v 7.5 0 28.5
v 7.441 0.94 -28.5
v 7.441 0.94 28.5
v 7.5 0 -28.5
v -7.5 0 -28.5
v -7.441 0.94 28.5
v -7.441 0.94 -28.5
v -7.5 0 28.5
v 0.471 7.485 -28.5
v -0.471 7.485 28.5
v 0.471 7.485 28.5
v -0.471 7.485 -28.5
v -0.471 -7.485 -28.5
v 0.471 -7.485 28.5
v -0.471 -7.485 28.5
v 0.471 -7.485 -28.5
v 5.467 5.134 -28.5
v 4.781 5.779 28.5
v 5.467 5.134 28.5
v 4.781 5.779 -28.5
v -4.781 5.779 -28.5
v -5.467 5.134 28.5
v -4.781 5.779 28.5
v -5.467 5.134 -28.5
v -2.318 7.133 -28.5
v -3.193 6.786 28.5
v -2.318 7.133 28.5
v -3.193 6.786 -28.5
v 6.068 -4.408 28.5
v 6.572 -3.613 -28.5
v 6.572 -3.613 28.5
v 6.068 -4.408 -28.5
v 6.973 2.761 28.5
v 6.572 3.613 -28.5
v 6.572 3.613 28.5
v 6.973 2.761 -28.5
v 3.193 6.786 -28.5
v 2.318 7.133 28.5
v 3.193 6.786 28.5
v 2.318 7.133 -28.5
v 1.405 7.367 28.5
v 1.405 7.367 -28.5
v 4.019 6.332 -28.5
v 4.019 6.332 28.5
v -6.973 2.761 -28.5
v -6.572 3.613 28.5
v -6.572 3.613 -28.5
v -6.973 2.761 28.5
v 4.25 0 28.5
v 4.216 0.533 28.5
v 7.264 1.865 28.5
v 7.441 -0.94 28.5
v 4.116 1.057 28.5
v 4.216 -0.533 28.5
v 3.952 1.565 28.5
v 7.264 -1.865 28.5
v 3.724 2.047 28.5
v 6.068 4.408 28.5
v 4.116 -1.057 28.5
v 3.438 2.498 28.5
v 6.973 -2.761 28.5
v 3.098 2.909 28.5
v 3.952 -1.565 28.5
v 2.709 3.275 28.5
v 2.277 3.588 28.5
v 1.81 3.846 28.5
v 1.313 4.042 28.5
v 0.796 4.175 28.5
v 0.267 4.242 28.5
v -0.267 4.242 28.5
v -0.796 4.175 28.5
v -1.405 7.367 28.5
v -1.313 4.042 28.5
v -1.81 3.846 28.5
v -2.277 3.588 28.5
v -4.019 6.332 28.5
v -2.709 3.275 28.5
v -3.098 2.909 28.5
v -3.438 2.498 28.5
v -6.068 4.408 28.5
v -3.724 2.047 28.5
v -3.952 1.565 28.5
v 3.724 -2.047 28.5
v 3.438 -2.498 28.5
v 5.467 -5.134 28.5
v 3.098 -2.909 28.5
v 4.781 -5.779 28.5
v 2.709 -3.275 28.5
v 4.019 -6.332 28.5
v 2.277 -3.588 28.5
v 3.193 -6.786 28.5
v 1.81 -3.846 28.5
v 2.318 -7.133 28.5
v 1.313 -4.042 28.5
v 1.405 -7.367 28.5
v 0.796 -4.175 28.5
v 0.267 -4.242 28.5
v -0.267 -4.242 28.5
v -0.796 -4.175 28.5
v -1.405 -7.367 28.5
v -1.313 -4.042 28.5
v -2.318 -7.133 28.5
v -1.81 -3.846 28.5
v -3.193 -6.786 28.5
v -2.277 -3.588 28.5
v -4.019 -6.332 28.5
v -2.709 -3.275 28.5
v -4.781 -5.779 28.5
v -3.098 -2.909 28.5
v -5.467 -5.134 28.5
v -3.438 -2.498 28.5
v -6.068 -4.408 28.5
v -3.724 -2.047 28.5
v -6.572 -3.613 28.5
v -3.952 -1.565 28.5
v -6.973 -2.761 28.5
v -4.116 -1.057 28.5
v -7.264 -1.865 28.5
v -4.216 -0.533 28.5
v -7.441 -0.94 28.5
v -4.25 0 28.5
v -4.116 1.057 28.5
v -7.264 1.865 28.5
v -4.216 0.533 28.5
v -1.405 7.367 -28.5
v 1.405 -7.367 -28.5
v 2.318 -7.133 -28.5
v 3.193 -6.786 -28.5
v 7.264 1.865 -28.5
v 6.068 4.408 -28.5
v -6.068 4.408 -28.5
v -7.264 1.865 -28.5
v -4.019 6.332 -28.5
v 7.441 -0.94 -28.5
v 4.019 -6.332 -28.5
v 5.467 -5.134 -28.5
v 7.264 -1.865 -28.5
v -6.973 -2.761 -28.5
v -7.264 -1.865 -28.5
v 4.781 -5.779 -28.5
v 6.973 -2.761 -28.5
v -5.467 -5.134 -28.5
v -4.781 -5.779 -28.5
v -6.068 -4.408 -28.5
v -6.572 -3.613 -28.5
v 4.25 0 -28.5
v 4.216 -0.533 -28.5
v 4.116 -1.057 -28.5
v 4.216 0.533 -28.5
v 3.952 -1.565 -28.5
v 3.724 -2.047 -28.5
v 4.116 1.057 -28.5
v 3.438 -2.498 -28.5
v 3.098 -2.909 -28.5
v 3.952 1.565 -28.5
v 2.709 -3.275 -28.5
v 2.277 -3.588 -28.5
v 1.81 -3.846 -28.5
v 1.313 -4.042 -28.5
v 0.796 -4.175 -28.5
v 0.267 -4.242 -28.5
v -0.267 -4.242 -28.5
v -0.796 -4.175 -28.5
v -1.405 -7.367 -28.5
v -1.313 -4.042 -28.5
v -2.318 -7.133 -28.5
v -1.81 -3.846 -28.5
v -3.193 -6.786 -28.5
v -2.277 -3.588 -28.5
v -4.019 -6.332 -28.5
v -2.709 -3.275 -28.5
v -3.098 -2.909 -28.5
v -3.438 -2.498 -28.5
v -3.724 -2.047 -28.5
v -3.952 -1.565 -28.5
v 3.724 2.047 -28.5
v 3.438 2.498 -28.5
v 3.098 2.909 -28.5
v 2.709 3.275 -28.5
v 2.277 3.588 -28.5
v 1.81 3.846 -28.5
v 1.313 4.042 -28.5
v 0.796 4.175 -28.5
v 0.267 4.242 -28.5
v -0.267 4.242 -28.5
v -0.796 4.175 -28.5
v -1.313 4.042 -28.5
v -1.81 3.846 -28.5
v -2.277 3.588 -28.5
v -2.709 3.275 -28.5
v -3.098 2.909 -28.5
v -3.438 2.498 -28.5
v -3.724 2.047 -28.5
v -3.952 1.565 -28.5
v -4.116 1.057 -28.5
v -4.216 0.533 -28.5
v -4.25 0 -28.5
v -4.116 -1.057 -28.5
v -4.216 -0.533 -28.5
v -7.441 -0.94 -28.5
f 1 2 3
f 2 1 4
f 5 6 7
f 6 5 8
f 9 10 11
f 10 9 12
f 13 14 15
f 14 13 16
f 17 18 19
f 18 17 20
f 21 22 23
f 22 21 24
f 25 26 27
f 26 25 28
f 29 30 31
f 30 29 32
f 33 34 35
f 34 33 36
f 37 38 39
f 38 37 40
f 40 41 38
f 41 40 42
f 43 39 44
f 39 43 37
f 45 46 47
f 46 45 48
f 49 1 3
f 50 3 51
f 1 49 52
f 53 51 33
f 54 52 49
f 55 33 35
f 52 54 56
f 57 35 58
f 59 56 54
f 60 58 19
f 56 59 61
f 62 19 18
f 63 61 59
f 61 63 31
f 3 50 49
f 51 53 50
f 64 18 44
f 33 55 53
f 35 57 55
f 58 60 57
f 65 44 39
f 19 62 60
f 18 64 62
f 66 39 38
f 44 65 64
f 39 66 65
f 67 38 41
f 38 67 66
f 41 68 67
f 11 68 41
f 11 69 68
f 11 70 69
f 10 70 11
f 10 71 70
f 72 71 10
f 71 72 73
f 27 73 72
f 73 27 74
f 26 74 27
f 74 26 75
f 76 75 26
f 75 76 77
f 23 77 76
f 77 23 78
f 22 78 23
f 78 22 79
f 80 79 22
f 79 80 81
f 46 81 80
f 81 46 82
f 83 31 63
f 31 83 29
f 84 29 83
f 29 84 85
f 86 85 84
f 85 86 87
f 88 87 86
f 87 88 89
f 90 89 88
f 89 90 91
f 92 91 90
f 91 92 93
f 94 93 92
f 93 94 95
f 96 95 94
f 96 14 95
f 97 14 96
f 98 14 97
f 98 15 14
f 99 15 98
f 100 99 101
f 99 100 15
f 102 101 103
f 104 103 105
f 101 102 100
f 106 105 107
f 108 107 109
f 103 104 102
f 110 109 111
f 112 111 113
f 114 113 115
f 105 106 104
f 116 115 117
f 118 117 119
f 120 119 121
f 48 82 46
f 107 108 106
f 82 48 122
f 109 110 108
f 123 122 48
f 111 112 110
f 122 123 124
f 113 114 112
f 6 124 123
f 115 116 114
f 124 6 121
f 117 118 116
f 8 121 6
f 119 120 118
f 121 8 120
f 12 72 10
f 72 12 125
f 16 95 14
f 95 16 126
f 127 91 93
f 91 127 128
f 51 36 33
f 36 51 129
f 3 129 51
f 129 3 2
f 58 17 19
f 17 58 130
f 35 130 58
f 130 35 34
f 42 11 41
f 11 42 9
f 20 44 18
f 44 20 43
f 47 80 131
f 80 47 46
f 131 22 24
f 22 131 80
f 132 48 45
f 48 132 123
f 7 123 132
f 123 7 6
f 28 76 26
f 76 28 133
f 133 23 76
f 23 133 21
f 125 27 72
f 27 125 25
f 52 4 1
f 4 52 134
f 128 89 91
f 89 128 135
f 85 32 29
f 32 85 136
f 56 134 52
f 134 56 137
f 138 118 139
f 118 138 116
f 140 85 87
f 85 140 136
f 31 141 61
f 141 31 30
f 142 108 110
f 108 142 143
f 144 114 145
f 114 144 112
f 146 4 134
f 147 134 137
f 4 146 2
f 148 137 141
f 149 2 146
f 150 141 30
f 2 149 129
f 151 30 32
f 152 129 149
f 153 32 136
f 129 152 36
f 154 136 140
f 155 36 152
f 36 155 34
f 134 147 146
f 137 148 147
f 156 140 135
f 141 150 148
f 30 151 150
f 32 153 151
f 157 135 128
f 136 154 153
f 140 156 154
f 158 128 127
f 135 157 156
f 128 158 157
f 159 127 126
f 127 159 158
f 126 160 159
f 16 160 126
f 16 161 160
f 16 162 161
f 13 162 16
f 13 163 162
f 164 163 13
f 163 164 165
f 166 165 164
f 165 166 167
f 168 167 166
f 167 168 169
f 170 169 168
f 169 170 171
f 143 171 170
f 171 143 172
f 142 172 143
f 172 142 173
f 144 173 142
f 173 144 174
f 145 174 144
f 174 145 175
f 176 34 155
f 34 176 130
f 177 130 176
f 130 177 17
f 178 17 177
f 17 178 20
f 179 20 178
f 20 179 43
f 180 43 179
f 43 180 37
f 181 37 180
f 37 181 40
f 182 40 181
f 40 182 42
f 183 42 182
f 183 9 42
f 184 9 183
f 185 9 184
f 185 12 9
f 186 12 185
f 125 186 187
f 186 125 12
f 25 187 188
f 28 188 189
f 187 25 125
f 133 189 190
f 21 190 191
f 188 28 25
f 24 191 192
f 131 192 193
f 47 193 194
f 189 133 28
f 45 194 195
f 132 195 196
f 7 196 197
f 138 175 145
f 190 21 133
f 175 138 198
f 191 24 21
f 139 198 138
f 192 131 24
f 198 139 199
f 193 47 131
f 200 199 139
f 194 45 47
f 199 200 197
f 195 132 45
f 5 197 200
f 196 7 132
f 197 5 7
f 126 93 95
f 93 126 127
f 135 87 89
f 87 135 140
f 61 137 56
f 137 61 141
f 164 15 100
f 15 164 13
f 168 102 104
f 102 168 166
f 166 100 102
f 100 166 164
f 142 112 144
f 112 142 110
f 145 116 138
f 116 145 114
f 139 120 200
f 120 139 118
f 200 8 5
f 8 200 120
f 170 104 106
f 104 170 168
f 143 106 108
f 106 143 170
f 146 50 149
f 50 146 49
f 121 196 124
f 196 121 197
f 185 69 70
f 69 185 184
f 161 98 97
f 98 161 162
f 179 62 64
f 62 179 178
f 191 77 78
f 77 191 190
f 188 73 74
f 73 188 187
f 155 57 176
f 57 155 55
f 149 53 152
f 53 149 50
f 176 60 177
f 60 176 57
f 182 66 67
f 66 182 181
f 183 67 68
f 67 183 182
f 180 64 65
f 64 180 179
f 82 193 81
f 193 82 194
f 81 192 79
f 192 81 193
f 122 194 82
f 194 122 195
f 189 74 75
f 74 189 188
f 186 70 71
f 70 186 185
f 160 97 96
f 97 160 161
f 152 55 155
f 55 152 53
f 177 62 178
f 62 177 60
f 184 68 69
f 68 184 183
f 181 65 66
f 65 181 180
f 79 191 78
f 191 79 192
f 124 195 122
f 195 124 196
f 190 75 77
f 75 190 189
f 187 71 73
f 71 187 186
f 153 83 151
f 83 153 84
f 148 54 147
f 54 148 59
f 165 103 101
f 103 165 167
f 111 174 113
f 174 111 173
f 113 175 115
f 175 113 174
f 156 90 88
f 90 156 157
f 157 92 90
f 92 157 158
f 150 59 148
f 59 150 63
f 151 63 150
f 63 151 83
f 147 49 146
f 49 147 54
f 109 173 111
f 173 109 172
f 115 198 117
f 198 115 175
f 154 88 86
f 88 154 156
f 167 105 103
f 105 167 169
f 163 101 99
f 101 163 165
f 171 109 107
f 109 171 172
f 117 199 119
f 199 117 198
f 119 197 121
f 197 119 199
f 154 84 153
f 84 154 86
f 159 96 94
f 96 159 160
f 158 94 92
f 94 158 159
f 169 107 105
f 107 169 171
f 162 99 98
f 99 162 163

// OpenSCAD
$fn = 50;


difference() {
	union() {
		translate(v = [0, 0, -28.5000000000]) {
			cylinder(h = 57, r = 7.5000000000);
		}
	}
	union() {
		translate(v = [0, 0, -100.0000000000]) {
			cylinder(h = 200, r = 4.2500000000);
		}
	}
}
